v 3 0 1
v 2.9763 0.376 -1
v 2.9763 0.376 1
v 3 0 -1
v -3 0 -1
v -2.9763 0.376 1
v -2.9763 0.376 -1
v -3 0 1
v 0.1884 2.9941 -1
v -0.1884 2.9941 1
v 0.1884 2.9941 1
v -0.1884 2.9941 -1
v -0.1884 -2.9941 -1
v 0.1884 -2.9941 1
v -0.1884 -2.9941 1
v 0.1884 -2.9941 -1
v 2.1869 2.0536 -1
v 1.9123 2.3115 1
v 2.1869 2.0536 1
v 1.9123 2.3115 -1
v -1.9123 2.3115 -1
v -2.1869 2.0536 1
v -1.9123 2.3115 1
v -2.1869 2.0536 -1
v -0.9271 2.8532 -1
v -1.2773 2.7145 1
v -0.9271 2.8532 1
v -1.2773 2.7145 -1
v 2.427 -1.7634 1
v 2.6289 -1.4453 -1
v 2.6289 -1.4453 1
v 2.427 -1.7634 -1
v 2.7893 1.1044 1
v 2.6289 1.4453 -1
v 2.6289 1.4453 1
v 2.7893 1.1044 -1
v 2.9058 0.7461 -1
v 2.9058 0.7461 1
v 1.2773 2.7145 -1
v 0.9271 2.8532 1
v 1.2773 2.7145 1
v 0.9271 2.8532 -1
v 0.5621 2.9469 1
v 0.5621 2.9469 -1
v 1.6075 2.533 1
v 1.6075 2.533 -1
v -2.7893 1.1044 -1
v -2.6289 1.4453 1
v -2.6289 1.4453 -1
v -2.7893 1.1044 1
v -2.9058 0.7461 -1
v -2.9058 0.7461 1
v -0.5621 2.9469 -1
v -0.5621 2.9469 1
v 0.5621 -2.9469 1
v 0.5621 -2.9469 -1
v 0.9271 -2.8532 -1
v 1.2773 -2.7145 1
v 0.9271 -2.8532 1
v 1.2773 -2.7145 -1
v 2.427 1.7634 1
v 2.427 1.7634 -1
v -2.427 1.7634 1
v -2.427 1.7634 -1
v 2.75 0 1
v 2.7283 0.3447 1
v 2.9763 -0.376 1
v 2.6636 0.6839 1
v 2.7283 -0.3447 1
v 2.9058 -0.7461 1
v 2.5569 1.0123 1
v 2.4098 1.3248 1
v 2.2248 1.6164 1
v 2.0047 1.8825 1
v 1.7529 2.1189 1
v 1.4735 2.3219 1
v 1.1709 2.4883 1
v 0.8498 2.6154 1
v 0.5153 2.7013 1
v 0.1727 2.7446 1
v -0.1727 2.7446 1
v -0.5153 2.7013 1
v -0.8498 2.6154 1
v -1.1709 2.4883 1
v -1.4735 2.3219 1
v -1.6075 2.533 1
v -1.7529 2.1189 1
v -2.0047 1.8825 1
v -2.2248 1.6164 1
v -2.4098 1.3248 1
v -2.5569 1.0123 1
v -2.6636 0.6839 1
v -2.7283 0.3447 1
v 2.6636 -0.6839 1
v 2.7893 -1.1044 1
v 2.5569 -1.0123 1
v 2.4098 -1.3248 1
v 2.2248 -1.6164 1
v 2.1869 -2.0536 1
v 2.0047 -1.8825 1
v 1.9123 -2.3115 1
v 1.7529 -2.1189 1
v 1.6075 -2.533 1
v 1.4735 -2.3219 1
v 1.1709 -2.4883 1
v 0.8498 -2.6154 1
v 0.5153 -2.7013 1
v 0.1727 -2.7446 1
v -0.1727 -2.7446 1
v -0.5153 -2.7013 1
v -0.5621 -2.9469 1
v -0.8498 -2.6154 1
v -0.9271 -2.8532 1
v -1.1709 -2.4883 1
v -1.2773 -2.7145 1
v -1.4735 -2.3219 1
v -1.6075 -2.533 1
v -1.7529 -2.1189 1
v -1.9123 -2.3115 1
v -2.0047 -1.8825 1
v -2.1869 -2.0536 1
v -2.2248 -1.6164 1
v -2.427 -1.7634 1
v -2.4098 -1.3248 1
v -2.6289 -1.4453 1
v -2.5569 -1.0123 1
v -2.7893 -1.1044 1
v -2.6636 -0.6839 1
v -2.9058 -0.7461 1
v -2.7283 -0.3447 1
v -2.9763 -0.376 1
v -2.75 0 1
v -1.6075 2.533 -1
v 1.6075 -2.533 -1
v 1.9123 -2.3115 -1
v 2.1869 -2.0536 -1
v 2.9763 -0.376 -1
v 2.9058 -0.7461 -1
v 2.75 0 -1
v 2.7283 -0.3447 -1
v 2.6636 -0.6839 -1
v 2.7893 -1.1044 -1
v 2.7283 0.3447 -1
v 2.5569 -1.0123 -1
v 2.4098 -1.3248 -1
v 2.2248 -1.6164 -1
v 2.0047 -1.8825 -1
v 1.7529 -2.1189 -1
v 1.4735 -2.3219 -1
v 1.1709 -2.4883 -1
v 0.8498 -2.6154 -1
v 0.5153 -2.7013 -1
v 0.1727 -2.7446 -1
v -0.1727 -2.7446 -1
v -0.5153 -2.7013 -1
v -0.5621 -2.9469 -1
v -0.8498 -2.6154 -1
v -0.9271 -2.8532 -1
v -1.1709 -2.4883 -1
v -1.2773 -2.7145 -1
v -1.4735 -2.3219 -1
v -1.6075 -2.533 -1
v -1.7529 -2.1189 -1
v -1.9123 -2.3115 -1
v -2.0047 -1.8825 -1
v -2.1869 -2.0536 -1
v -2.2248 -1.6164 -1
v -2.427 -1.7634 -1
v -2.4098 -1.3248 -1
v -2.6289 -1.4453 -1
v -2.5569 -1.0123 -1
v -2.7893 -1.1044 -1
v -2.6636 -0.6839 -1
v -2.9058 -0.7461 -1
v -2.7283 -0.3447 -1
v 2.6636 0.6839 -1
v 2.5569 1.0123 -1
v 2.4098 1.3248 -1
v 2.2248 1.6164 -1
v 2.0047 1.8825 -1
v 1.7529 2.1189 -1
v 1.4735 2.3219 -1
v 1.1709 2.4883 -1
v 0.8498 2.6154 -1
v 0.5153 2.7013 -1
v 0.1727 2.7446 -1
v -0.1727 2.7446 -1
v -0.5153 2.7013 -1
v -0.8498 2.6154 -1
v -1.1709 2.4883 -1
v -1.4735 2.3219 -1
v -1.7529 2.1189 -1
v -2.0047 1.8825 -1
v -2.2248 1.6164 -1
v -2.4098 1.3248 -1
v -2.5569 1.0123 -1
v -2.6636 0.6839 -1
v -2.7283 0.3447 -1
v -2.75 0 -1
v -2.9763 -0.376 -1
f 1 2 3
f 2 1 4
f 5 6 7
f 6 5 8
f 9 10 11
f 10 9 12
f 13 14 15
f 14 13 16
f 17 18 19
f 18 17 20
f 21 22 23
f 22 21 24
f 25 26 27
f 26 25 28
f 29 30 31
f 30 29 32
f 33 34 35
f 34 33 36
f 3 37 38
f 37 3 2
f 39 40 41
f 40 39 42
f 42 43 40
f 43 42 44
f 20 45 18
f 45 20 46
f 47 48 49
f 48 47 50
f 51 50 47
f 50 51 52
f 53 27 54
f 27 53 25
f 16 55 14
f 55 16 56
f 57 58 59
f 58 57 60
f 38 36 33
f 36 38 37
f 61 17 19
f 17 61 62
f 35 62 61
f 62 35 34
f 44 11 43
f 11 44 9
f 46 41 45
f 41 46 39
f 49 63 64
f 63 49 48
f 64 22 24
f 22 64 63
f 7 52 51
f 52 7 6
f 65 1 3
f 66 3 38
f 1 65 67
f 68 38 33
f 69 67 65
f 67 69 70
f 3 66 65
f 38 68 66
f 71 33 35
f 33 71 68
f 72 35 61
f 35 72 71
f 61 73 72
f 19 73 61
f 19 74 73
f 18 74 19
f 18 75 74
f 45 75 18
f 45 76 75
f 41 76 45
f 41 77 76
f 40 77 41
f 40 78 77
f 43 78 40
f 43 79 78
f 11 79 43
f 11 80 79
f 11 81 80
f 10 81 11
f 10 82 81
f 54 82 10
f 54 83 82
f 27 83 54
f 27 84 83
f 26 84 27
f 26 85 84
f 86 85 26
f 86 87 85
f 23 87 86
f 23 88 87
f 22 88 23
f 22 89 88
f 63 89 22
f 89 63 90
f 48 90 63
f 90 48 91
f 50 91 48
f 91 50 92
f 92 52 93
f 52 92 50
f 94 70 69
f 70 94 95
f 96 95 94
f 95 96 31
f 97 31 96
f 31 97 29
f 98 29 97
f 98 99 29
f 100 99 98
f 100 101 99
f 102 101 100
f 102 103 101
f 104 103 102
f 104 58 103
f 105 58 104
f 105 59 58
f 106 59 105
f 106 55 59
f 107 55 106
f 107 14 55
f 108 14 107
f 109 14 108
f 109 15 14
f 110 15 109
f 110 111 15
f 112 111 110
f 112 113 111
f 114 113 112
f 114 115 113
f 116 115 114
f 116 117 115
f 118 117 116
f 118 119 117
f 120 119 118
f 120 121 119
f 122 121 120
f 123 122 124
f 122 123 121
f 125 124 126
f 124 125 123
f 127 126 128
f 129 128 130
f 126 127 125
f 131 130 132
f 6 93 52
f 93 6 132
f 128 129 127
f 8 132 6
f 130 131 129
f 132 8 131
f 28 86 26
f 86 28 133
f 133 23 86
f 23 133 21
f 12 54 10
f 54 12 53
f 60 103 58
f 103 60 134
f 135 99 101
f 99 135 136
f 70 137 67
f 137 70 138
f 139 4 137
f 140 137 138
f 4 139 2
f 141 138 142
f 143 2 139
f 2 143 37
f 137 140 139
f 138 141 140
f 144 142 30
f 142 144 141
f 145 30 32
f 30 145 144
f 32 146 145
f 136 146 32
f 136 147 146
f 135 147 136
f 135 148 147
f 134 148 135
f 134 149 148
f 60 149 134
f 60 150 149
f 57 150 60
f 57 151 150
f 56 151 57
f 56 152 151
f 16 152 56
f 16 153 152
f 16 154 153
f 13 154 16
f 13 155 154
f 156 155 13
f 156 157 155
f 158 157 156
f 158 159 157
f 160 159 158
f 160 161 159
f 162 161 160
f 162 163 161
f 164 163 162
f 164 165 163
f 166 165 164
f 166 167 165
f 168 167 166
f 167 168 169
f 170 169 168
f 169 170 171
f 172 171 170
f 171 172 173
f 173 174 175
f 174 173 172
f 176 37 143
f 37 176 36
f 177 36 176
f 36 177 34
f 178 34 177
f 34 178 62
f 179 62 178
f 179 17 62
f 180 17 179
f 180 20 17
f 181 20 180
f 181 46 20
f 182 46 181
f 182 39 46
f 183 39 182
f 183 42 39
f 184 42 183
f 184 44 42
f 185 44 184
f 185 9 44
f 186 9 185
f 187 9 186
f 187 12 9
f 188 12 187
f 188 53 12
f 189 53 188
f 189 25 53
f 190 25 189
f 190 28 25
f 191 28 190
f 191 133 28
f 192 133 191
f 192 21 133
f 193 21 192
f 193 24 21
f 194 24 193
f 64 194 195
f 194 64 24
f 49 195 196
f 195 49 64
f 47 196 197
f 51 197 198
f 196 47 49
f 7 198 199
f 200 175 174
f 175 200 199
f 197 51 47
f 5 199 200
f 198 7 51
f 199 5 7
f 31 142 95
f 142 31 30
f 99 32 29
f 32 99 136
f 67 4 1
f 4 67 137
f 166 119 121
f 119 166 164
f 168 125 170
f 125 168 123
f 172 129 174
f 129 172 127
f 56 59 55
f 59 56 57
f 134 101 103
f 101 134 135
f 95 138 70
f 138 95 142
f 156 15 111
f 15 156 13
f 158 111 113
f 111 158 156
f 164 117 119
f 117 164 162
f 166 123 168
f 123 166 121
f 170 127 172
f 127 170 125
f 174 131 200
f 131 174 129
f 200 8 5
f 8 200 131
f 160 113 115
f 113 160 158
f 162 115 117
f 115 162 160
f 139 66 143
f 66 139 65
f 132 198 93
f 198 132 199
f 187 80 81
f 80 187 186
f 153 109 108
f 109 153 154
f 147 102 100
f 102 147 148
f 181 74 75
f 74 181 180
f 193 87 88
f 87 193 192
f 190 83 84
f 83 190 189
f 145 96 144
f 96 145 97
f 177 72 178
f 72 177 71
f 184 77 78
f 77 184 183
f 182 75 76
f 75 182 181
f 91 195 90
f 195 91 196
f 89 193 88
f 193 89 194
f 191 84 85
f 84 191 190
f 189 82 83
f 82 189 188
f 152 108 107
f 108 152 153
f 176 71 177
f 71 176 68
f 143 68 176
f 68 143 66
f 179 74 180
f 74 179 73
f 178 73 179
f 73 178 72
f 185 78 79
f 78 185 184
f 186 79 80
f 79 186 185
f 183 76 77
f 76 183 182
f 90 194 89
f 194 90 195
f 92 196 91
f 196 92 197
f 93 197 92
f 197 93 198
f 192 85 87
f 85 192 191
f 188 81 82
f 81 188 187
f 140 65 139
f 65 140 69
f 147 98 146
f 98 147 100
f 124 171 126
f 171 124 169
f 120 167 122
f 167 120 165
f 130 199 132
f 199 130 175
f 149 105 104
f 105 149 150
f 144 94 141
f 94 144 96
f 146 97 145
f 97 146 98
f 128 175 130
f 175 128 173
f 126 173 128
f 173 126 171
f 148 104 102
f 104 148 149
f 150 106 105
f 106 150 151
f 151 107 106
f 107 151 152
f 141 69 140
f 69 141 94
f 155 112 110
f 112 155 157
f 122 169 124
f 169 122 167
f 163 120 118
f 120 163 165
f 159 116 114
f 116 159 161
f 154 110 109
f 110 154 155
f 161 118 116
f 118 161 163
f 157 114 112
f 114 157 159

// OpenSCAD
$fn = 50;


difference() {
	union() {
		translate(v = [0, 0, -1.0000000000]) {
			cylinder(h = 2, r = 3.0000000000);
		}
	}
	union() {
		translate(v = [0, 0, -100.0000000000]) {
			cylinder(h = 200, r = 2.7500000000);
		}
	}
}
